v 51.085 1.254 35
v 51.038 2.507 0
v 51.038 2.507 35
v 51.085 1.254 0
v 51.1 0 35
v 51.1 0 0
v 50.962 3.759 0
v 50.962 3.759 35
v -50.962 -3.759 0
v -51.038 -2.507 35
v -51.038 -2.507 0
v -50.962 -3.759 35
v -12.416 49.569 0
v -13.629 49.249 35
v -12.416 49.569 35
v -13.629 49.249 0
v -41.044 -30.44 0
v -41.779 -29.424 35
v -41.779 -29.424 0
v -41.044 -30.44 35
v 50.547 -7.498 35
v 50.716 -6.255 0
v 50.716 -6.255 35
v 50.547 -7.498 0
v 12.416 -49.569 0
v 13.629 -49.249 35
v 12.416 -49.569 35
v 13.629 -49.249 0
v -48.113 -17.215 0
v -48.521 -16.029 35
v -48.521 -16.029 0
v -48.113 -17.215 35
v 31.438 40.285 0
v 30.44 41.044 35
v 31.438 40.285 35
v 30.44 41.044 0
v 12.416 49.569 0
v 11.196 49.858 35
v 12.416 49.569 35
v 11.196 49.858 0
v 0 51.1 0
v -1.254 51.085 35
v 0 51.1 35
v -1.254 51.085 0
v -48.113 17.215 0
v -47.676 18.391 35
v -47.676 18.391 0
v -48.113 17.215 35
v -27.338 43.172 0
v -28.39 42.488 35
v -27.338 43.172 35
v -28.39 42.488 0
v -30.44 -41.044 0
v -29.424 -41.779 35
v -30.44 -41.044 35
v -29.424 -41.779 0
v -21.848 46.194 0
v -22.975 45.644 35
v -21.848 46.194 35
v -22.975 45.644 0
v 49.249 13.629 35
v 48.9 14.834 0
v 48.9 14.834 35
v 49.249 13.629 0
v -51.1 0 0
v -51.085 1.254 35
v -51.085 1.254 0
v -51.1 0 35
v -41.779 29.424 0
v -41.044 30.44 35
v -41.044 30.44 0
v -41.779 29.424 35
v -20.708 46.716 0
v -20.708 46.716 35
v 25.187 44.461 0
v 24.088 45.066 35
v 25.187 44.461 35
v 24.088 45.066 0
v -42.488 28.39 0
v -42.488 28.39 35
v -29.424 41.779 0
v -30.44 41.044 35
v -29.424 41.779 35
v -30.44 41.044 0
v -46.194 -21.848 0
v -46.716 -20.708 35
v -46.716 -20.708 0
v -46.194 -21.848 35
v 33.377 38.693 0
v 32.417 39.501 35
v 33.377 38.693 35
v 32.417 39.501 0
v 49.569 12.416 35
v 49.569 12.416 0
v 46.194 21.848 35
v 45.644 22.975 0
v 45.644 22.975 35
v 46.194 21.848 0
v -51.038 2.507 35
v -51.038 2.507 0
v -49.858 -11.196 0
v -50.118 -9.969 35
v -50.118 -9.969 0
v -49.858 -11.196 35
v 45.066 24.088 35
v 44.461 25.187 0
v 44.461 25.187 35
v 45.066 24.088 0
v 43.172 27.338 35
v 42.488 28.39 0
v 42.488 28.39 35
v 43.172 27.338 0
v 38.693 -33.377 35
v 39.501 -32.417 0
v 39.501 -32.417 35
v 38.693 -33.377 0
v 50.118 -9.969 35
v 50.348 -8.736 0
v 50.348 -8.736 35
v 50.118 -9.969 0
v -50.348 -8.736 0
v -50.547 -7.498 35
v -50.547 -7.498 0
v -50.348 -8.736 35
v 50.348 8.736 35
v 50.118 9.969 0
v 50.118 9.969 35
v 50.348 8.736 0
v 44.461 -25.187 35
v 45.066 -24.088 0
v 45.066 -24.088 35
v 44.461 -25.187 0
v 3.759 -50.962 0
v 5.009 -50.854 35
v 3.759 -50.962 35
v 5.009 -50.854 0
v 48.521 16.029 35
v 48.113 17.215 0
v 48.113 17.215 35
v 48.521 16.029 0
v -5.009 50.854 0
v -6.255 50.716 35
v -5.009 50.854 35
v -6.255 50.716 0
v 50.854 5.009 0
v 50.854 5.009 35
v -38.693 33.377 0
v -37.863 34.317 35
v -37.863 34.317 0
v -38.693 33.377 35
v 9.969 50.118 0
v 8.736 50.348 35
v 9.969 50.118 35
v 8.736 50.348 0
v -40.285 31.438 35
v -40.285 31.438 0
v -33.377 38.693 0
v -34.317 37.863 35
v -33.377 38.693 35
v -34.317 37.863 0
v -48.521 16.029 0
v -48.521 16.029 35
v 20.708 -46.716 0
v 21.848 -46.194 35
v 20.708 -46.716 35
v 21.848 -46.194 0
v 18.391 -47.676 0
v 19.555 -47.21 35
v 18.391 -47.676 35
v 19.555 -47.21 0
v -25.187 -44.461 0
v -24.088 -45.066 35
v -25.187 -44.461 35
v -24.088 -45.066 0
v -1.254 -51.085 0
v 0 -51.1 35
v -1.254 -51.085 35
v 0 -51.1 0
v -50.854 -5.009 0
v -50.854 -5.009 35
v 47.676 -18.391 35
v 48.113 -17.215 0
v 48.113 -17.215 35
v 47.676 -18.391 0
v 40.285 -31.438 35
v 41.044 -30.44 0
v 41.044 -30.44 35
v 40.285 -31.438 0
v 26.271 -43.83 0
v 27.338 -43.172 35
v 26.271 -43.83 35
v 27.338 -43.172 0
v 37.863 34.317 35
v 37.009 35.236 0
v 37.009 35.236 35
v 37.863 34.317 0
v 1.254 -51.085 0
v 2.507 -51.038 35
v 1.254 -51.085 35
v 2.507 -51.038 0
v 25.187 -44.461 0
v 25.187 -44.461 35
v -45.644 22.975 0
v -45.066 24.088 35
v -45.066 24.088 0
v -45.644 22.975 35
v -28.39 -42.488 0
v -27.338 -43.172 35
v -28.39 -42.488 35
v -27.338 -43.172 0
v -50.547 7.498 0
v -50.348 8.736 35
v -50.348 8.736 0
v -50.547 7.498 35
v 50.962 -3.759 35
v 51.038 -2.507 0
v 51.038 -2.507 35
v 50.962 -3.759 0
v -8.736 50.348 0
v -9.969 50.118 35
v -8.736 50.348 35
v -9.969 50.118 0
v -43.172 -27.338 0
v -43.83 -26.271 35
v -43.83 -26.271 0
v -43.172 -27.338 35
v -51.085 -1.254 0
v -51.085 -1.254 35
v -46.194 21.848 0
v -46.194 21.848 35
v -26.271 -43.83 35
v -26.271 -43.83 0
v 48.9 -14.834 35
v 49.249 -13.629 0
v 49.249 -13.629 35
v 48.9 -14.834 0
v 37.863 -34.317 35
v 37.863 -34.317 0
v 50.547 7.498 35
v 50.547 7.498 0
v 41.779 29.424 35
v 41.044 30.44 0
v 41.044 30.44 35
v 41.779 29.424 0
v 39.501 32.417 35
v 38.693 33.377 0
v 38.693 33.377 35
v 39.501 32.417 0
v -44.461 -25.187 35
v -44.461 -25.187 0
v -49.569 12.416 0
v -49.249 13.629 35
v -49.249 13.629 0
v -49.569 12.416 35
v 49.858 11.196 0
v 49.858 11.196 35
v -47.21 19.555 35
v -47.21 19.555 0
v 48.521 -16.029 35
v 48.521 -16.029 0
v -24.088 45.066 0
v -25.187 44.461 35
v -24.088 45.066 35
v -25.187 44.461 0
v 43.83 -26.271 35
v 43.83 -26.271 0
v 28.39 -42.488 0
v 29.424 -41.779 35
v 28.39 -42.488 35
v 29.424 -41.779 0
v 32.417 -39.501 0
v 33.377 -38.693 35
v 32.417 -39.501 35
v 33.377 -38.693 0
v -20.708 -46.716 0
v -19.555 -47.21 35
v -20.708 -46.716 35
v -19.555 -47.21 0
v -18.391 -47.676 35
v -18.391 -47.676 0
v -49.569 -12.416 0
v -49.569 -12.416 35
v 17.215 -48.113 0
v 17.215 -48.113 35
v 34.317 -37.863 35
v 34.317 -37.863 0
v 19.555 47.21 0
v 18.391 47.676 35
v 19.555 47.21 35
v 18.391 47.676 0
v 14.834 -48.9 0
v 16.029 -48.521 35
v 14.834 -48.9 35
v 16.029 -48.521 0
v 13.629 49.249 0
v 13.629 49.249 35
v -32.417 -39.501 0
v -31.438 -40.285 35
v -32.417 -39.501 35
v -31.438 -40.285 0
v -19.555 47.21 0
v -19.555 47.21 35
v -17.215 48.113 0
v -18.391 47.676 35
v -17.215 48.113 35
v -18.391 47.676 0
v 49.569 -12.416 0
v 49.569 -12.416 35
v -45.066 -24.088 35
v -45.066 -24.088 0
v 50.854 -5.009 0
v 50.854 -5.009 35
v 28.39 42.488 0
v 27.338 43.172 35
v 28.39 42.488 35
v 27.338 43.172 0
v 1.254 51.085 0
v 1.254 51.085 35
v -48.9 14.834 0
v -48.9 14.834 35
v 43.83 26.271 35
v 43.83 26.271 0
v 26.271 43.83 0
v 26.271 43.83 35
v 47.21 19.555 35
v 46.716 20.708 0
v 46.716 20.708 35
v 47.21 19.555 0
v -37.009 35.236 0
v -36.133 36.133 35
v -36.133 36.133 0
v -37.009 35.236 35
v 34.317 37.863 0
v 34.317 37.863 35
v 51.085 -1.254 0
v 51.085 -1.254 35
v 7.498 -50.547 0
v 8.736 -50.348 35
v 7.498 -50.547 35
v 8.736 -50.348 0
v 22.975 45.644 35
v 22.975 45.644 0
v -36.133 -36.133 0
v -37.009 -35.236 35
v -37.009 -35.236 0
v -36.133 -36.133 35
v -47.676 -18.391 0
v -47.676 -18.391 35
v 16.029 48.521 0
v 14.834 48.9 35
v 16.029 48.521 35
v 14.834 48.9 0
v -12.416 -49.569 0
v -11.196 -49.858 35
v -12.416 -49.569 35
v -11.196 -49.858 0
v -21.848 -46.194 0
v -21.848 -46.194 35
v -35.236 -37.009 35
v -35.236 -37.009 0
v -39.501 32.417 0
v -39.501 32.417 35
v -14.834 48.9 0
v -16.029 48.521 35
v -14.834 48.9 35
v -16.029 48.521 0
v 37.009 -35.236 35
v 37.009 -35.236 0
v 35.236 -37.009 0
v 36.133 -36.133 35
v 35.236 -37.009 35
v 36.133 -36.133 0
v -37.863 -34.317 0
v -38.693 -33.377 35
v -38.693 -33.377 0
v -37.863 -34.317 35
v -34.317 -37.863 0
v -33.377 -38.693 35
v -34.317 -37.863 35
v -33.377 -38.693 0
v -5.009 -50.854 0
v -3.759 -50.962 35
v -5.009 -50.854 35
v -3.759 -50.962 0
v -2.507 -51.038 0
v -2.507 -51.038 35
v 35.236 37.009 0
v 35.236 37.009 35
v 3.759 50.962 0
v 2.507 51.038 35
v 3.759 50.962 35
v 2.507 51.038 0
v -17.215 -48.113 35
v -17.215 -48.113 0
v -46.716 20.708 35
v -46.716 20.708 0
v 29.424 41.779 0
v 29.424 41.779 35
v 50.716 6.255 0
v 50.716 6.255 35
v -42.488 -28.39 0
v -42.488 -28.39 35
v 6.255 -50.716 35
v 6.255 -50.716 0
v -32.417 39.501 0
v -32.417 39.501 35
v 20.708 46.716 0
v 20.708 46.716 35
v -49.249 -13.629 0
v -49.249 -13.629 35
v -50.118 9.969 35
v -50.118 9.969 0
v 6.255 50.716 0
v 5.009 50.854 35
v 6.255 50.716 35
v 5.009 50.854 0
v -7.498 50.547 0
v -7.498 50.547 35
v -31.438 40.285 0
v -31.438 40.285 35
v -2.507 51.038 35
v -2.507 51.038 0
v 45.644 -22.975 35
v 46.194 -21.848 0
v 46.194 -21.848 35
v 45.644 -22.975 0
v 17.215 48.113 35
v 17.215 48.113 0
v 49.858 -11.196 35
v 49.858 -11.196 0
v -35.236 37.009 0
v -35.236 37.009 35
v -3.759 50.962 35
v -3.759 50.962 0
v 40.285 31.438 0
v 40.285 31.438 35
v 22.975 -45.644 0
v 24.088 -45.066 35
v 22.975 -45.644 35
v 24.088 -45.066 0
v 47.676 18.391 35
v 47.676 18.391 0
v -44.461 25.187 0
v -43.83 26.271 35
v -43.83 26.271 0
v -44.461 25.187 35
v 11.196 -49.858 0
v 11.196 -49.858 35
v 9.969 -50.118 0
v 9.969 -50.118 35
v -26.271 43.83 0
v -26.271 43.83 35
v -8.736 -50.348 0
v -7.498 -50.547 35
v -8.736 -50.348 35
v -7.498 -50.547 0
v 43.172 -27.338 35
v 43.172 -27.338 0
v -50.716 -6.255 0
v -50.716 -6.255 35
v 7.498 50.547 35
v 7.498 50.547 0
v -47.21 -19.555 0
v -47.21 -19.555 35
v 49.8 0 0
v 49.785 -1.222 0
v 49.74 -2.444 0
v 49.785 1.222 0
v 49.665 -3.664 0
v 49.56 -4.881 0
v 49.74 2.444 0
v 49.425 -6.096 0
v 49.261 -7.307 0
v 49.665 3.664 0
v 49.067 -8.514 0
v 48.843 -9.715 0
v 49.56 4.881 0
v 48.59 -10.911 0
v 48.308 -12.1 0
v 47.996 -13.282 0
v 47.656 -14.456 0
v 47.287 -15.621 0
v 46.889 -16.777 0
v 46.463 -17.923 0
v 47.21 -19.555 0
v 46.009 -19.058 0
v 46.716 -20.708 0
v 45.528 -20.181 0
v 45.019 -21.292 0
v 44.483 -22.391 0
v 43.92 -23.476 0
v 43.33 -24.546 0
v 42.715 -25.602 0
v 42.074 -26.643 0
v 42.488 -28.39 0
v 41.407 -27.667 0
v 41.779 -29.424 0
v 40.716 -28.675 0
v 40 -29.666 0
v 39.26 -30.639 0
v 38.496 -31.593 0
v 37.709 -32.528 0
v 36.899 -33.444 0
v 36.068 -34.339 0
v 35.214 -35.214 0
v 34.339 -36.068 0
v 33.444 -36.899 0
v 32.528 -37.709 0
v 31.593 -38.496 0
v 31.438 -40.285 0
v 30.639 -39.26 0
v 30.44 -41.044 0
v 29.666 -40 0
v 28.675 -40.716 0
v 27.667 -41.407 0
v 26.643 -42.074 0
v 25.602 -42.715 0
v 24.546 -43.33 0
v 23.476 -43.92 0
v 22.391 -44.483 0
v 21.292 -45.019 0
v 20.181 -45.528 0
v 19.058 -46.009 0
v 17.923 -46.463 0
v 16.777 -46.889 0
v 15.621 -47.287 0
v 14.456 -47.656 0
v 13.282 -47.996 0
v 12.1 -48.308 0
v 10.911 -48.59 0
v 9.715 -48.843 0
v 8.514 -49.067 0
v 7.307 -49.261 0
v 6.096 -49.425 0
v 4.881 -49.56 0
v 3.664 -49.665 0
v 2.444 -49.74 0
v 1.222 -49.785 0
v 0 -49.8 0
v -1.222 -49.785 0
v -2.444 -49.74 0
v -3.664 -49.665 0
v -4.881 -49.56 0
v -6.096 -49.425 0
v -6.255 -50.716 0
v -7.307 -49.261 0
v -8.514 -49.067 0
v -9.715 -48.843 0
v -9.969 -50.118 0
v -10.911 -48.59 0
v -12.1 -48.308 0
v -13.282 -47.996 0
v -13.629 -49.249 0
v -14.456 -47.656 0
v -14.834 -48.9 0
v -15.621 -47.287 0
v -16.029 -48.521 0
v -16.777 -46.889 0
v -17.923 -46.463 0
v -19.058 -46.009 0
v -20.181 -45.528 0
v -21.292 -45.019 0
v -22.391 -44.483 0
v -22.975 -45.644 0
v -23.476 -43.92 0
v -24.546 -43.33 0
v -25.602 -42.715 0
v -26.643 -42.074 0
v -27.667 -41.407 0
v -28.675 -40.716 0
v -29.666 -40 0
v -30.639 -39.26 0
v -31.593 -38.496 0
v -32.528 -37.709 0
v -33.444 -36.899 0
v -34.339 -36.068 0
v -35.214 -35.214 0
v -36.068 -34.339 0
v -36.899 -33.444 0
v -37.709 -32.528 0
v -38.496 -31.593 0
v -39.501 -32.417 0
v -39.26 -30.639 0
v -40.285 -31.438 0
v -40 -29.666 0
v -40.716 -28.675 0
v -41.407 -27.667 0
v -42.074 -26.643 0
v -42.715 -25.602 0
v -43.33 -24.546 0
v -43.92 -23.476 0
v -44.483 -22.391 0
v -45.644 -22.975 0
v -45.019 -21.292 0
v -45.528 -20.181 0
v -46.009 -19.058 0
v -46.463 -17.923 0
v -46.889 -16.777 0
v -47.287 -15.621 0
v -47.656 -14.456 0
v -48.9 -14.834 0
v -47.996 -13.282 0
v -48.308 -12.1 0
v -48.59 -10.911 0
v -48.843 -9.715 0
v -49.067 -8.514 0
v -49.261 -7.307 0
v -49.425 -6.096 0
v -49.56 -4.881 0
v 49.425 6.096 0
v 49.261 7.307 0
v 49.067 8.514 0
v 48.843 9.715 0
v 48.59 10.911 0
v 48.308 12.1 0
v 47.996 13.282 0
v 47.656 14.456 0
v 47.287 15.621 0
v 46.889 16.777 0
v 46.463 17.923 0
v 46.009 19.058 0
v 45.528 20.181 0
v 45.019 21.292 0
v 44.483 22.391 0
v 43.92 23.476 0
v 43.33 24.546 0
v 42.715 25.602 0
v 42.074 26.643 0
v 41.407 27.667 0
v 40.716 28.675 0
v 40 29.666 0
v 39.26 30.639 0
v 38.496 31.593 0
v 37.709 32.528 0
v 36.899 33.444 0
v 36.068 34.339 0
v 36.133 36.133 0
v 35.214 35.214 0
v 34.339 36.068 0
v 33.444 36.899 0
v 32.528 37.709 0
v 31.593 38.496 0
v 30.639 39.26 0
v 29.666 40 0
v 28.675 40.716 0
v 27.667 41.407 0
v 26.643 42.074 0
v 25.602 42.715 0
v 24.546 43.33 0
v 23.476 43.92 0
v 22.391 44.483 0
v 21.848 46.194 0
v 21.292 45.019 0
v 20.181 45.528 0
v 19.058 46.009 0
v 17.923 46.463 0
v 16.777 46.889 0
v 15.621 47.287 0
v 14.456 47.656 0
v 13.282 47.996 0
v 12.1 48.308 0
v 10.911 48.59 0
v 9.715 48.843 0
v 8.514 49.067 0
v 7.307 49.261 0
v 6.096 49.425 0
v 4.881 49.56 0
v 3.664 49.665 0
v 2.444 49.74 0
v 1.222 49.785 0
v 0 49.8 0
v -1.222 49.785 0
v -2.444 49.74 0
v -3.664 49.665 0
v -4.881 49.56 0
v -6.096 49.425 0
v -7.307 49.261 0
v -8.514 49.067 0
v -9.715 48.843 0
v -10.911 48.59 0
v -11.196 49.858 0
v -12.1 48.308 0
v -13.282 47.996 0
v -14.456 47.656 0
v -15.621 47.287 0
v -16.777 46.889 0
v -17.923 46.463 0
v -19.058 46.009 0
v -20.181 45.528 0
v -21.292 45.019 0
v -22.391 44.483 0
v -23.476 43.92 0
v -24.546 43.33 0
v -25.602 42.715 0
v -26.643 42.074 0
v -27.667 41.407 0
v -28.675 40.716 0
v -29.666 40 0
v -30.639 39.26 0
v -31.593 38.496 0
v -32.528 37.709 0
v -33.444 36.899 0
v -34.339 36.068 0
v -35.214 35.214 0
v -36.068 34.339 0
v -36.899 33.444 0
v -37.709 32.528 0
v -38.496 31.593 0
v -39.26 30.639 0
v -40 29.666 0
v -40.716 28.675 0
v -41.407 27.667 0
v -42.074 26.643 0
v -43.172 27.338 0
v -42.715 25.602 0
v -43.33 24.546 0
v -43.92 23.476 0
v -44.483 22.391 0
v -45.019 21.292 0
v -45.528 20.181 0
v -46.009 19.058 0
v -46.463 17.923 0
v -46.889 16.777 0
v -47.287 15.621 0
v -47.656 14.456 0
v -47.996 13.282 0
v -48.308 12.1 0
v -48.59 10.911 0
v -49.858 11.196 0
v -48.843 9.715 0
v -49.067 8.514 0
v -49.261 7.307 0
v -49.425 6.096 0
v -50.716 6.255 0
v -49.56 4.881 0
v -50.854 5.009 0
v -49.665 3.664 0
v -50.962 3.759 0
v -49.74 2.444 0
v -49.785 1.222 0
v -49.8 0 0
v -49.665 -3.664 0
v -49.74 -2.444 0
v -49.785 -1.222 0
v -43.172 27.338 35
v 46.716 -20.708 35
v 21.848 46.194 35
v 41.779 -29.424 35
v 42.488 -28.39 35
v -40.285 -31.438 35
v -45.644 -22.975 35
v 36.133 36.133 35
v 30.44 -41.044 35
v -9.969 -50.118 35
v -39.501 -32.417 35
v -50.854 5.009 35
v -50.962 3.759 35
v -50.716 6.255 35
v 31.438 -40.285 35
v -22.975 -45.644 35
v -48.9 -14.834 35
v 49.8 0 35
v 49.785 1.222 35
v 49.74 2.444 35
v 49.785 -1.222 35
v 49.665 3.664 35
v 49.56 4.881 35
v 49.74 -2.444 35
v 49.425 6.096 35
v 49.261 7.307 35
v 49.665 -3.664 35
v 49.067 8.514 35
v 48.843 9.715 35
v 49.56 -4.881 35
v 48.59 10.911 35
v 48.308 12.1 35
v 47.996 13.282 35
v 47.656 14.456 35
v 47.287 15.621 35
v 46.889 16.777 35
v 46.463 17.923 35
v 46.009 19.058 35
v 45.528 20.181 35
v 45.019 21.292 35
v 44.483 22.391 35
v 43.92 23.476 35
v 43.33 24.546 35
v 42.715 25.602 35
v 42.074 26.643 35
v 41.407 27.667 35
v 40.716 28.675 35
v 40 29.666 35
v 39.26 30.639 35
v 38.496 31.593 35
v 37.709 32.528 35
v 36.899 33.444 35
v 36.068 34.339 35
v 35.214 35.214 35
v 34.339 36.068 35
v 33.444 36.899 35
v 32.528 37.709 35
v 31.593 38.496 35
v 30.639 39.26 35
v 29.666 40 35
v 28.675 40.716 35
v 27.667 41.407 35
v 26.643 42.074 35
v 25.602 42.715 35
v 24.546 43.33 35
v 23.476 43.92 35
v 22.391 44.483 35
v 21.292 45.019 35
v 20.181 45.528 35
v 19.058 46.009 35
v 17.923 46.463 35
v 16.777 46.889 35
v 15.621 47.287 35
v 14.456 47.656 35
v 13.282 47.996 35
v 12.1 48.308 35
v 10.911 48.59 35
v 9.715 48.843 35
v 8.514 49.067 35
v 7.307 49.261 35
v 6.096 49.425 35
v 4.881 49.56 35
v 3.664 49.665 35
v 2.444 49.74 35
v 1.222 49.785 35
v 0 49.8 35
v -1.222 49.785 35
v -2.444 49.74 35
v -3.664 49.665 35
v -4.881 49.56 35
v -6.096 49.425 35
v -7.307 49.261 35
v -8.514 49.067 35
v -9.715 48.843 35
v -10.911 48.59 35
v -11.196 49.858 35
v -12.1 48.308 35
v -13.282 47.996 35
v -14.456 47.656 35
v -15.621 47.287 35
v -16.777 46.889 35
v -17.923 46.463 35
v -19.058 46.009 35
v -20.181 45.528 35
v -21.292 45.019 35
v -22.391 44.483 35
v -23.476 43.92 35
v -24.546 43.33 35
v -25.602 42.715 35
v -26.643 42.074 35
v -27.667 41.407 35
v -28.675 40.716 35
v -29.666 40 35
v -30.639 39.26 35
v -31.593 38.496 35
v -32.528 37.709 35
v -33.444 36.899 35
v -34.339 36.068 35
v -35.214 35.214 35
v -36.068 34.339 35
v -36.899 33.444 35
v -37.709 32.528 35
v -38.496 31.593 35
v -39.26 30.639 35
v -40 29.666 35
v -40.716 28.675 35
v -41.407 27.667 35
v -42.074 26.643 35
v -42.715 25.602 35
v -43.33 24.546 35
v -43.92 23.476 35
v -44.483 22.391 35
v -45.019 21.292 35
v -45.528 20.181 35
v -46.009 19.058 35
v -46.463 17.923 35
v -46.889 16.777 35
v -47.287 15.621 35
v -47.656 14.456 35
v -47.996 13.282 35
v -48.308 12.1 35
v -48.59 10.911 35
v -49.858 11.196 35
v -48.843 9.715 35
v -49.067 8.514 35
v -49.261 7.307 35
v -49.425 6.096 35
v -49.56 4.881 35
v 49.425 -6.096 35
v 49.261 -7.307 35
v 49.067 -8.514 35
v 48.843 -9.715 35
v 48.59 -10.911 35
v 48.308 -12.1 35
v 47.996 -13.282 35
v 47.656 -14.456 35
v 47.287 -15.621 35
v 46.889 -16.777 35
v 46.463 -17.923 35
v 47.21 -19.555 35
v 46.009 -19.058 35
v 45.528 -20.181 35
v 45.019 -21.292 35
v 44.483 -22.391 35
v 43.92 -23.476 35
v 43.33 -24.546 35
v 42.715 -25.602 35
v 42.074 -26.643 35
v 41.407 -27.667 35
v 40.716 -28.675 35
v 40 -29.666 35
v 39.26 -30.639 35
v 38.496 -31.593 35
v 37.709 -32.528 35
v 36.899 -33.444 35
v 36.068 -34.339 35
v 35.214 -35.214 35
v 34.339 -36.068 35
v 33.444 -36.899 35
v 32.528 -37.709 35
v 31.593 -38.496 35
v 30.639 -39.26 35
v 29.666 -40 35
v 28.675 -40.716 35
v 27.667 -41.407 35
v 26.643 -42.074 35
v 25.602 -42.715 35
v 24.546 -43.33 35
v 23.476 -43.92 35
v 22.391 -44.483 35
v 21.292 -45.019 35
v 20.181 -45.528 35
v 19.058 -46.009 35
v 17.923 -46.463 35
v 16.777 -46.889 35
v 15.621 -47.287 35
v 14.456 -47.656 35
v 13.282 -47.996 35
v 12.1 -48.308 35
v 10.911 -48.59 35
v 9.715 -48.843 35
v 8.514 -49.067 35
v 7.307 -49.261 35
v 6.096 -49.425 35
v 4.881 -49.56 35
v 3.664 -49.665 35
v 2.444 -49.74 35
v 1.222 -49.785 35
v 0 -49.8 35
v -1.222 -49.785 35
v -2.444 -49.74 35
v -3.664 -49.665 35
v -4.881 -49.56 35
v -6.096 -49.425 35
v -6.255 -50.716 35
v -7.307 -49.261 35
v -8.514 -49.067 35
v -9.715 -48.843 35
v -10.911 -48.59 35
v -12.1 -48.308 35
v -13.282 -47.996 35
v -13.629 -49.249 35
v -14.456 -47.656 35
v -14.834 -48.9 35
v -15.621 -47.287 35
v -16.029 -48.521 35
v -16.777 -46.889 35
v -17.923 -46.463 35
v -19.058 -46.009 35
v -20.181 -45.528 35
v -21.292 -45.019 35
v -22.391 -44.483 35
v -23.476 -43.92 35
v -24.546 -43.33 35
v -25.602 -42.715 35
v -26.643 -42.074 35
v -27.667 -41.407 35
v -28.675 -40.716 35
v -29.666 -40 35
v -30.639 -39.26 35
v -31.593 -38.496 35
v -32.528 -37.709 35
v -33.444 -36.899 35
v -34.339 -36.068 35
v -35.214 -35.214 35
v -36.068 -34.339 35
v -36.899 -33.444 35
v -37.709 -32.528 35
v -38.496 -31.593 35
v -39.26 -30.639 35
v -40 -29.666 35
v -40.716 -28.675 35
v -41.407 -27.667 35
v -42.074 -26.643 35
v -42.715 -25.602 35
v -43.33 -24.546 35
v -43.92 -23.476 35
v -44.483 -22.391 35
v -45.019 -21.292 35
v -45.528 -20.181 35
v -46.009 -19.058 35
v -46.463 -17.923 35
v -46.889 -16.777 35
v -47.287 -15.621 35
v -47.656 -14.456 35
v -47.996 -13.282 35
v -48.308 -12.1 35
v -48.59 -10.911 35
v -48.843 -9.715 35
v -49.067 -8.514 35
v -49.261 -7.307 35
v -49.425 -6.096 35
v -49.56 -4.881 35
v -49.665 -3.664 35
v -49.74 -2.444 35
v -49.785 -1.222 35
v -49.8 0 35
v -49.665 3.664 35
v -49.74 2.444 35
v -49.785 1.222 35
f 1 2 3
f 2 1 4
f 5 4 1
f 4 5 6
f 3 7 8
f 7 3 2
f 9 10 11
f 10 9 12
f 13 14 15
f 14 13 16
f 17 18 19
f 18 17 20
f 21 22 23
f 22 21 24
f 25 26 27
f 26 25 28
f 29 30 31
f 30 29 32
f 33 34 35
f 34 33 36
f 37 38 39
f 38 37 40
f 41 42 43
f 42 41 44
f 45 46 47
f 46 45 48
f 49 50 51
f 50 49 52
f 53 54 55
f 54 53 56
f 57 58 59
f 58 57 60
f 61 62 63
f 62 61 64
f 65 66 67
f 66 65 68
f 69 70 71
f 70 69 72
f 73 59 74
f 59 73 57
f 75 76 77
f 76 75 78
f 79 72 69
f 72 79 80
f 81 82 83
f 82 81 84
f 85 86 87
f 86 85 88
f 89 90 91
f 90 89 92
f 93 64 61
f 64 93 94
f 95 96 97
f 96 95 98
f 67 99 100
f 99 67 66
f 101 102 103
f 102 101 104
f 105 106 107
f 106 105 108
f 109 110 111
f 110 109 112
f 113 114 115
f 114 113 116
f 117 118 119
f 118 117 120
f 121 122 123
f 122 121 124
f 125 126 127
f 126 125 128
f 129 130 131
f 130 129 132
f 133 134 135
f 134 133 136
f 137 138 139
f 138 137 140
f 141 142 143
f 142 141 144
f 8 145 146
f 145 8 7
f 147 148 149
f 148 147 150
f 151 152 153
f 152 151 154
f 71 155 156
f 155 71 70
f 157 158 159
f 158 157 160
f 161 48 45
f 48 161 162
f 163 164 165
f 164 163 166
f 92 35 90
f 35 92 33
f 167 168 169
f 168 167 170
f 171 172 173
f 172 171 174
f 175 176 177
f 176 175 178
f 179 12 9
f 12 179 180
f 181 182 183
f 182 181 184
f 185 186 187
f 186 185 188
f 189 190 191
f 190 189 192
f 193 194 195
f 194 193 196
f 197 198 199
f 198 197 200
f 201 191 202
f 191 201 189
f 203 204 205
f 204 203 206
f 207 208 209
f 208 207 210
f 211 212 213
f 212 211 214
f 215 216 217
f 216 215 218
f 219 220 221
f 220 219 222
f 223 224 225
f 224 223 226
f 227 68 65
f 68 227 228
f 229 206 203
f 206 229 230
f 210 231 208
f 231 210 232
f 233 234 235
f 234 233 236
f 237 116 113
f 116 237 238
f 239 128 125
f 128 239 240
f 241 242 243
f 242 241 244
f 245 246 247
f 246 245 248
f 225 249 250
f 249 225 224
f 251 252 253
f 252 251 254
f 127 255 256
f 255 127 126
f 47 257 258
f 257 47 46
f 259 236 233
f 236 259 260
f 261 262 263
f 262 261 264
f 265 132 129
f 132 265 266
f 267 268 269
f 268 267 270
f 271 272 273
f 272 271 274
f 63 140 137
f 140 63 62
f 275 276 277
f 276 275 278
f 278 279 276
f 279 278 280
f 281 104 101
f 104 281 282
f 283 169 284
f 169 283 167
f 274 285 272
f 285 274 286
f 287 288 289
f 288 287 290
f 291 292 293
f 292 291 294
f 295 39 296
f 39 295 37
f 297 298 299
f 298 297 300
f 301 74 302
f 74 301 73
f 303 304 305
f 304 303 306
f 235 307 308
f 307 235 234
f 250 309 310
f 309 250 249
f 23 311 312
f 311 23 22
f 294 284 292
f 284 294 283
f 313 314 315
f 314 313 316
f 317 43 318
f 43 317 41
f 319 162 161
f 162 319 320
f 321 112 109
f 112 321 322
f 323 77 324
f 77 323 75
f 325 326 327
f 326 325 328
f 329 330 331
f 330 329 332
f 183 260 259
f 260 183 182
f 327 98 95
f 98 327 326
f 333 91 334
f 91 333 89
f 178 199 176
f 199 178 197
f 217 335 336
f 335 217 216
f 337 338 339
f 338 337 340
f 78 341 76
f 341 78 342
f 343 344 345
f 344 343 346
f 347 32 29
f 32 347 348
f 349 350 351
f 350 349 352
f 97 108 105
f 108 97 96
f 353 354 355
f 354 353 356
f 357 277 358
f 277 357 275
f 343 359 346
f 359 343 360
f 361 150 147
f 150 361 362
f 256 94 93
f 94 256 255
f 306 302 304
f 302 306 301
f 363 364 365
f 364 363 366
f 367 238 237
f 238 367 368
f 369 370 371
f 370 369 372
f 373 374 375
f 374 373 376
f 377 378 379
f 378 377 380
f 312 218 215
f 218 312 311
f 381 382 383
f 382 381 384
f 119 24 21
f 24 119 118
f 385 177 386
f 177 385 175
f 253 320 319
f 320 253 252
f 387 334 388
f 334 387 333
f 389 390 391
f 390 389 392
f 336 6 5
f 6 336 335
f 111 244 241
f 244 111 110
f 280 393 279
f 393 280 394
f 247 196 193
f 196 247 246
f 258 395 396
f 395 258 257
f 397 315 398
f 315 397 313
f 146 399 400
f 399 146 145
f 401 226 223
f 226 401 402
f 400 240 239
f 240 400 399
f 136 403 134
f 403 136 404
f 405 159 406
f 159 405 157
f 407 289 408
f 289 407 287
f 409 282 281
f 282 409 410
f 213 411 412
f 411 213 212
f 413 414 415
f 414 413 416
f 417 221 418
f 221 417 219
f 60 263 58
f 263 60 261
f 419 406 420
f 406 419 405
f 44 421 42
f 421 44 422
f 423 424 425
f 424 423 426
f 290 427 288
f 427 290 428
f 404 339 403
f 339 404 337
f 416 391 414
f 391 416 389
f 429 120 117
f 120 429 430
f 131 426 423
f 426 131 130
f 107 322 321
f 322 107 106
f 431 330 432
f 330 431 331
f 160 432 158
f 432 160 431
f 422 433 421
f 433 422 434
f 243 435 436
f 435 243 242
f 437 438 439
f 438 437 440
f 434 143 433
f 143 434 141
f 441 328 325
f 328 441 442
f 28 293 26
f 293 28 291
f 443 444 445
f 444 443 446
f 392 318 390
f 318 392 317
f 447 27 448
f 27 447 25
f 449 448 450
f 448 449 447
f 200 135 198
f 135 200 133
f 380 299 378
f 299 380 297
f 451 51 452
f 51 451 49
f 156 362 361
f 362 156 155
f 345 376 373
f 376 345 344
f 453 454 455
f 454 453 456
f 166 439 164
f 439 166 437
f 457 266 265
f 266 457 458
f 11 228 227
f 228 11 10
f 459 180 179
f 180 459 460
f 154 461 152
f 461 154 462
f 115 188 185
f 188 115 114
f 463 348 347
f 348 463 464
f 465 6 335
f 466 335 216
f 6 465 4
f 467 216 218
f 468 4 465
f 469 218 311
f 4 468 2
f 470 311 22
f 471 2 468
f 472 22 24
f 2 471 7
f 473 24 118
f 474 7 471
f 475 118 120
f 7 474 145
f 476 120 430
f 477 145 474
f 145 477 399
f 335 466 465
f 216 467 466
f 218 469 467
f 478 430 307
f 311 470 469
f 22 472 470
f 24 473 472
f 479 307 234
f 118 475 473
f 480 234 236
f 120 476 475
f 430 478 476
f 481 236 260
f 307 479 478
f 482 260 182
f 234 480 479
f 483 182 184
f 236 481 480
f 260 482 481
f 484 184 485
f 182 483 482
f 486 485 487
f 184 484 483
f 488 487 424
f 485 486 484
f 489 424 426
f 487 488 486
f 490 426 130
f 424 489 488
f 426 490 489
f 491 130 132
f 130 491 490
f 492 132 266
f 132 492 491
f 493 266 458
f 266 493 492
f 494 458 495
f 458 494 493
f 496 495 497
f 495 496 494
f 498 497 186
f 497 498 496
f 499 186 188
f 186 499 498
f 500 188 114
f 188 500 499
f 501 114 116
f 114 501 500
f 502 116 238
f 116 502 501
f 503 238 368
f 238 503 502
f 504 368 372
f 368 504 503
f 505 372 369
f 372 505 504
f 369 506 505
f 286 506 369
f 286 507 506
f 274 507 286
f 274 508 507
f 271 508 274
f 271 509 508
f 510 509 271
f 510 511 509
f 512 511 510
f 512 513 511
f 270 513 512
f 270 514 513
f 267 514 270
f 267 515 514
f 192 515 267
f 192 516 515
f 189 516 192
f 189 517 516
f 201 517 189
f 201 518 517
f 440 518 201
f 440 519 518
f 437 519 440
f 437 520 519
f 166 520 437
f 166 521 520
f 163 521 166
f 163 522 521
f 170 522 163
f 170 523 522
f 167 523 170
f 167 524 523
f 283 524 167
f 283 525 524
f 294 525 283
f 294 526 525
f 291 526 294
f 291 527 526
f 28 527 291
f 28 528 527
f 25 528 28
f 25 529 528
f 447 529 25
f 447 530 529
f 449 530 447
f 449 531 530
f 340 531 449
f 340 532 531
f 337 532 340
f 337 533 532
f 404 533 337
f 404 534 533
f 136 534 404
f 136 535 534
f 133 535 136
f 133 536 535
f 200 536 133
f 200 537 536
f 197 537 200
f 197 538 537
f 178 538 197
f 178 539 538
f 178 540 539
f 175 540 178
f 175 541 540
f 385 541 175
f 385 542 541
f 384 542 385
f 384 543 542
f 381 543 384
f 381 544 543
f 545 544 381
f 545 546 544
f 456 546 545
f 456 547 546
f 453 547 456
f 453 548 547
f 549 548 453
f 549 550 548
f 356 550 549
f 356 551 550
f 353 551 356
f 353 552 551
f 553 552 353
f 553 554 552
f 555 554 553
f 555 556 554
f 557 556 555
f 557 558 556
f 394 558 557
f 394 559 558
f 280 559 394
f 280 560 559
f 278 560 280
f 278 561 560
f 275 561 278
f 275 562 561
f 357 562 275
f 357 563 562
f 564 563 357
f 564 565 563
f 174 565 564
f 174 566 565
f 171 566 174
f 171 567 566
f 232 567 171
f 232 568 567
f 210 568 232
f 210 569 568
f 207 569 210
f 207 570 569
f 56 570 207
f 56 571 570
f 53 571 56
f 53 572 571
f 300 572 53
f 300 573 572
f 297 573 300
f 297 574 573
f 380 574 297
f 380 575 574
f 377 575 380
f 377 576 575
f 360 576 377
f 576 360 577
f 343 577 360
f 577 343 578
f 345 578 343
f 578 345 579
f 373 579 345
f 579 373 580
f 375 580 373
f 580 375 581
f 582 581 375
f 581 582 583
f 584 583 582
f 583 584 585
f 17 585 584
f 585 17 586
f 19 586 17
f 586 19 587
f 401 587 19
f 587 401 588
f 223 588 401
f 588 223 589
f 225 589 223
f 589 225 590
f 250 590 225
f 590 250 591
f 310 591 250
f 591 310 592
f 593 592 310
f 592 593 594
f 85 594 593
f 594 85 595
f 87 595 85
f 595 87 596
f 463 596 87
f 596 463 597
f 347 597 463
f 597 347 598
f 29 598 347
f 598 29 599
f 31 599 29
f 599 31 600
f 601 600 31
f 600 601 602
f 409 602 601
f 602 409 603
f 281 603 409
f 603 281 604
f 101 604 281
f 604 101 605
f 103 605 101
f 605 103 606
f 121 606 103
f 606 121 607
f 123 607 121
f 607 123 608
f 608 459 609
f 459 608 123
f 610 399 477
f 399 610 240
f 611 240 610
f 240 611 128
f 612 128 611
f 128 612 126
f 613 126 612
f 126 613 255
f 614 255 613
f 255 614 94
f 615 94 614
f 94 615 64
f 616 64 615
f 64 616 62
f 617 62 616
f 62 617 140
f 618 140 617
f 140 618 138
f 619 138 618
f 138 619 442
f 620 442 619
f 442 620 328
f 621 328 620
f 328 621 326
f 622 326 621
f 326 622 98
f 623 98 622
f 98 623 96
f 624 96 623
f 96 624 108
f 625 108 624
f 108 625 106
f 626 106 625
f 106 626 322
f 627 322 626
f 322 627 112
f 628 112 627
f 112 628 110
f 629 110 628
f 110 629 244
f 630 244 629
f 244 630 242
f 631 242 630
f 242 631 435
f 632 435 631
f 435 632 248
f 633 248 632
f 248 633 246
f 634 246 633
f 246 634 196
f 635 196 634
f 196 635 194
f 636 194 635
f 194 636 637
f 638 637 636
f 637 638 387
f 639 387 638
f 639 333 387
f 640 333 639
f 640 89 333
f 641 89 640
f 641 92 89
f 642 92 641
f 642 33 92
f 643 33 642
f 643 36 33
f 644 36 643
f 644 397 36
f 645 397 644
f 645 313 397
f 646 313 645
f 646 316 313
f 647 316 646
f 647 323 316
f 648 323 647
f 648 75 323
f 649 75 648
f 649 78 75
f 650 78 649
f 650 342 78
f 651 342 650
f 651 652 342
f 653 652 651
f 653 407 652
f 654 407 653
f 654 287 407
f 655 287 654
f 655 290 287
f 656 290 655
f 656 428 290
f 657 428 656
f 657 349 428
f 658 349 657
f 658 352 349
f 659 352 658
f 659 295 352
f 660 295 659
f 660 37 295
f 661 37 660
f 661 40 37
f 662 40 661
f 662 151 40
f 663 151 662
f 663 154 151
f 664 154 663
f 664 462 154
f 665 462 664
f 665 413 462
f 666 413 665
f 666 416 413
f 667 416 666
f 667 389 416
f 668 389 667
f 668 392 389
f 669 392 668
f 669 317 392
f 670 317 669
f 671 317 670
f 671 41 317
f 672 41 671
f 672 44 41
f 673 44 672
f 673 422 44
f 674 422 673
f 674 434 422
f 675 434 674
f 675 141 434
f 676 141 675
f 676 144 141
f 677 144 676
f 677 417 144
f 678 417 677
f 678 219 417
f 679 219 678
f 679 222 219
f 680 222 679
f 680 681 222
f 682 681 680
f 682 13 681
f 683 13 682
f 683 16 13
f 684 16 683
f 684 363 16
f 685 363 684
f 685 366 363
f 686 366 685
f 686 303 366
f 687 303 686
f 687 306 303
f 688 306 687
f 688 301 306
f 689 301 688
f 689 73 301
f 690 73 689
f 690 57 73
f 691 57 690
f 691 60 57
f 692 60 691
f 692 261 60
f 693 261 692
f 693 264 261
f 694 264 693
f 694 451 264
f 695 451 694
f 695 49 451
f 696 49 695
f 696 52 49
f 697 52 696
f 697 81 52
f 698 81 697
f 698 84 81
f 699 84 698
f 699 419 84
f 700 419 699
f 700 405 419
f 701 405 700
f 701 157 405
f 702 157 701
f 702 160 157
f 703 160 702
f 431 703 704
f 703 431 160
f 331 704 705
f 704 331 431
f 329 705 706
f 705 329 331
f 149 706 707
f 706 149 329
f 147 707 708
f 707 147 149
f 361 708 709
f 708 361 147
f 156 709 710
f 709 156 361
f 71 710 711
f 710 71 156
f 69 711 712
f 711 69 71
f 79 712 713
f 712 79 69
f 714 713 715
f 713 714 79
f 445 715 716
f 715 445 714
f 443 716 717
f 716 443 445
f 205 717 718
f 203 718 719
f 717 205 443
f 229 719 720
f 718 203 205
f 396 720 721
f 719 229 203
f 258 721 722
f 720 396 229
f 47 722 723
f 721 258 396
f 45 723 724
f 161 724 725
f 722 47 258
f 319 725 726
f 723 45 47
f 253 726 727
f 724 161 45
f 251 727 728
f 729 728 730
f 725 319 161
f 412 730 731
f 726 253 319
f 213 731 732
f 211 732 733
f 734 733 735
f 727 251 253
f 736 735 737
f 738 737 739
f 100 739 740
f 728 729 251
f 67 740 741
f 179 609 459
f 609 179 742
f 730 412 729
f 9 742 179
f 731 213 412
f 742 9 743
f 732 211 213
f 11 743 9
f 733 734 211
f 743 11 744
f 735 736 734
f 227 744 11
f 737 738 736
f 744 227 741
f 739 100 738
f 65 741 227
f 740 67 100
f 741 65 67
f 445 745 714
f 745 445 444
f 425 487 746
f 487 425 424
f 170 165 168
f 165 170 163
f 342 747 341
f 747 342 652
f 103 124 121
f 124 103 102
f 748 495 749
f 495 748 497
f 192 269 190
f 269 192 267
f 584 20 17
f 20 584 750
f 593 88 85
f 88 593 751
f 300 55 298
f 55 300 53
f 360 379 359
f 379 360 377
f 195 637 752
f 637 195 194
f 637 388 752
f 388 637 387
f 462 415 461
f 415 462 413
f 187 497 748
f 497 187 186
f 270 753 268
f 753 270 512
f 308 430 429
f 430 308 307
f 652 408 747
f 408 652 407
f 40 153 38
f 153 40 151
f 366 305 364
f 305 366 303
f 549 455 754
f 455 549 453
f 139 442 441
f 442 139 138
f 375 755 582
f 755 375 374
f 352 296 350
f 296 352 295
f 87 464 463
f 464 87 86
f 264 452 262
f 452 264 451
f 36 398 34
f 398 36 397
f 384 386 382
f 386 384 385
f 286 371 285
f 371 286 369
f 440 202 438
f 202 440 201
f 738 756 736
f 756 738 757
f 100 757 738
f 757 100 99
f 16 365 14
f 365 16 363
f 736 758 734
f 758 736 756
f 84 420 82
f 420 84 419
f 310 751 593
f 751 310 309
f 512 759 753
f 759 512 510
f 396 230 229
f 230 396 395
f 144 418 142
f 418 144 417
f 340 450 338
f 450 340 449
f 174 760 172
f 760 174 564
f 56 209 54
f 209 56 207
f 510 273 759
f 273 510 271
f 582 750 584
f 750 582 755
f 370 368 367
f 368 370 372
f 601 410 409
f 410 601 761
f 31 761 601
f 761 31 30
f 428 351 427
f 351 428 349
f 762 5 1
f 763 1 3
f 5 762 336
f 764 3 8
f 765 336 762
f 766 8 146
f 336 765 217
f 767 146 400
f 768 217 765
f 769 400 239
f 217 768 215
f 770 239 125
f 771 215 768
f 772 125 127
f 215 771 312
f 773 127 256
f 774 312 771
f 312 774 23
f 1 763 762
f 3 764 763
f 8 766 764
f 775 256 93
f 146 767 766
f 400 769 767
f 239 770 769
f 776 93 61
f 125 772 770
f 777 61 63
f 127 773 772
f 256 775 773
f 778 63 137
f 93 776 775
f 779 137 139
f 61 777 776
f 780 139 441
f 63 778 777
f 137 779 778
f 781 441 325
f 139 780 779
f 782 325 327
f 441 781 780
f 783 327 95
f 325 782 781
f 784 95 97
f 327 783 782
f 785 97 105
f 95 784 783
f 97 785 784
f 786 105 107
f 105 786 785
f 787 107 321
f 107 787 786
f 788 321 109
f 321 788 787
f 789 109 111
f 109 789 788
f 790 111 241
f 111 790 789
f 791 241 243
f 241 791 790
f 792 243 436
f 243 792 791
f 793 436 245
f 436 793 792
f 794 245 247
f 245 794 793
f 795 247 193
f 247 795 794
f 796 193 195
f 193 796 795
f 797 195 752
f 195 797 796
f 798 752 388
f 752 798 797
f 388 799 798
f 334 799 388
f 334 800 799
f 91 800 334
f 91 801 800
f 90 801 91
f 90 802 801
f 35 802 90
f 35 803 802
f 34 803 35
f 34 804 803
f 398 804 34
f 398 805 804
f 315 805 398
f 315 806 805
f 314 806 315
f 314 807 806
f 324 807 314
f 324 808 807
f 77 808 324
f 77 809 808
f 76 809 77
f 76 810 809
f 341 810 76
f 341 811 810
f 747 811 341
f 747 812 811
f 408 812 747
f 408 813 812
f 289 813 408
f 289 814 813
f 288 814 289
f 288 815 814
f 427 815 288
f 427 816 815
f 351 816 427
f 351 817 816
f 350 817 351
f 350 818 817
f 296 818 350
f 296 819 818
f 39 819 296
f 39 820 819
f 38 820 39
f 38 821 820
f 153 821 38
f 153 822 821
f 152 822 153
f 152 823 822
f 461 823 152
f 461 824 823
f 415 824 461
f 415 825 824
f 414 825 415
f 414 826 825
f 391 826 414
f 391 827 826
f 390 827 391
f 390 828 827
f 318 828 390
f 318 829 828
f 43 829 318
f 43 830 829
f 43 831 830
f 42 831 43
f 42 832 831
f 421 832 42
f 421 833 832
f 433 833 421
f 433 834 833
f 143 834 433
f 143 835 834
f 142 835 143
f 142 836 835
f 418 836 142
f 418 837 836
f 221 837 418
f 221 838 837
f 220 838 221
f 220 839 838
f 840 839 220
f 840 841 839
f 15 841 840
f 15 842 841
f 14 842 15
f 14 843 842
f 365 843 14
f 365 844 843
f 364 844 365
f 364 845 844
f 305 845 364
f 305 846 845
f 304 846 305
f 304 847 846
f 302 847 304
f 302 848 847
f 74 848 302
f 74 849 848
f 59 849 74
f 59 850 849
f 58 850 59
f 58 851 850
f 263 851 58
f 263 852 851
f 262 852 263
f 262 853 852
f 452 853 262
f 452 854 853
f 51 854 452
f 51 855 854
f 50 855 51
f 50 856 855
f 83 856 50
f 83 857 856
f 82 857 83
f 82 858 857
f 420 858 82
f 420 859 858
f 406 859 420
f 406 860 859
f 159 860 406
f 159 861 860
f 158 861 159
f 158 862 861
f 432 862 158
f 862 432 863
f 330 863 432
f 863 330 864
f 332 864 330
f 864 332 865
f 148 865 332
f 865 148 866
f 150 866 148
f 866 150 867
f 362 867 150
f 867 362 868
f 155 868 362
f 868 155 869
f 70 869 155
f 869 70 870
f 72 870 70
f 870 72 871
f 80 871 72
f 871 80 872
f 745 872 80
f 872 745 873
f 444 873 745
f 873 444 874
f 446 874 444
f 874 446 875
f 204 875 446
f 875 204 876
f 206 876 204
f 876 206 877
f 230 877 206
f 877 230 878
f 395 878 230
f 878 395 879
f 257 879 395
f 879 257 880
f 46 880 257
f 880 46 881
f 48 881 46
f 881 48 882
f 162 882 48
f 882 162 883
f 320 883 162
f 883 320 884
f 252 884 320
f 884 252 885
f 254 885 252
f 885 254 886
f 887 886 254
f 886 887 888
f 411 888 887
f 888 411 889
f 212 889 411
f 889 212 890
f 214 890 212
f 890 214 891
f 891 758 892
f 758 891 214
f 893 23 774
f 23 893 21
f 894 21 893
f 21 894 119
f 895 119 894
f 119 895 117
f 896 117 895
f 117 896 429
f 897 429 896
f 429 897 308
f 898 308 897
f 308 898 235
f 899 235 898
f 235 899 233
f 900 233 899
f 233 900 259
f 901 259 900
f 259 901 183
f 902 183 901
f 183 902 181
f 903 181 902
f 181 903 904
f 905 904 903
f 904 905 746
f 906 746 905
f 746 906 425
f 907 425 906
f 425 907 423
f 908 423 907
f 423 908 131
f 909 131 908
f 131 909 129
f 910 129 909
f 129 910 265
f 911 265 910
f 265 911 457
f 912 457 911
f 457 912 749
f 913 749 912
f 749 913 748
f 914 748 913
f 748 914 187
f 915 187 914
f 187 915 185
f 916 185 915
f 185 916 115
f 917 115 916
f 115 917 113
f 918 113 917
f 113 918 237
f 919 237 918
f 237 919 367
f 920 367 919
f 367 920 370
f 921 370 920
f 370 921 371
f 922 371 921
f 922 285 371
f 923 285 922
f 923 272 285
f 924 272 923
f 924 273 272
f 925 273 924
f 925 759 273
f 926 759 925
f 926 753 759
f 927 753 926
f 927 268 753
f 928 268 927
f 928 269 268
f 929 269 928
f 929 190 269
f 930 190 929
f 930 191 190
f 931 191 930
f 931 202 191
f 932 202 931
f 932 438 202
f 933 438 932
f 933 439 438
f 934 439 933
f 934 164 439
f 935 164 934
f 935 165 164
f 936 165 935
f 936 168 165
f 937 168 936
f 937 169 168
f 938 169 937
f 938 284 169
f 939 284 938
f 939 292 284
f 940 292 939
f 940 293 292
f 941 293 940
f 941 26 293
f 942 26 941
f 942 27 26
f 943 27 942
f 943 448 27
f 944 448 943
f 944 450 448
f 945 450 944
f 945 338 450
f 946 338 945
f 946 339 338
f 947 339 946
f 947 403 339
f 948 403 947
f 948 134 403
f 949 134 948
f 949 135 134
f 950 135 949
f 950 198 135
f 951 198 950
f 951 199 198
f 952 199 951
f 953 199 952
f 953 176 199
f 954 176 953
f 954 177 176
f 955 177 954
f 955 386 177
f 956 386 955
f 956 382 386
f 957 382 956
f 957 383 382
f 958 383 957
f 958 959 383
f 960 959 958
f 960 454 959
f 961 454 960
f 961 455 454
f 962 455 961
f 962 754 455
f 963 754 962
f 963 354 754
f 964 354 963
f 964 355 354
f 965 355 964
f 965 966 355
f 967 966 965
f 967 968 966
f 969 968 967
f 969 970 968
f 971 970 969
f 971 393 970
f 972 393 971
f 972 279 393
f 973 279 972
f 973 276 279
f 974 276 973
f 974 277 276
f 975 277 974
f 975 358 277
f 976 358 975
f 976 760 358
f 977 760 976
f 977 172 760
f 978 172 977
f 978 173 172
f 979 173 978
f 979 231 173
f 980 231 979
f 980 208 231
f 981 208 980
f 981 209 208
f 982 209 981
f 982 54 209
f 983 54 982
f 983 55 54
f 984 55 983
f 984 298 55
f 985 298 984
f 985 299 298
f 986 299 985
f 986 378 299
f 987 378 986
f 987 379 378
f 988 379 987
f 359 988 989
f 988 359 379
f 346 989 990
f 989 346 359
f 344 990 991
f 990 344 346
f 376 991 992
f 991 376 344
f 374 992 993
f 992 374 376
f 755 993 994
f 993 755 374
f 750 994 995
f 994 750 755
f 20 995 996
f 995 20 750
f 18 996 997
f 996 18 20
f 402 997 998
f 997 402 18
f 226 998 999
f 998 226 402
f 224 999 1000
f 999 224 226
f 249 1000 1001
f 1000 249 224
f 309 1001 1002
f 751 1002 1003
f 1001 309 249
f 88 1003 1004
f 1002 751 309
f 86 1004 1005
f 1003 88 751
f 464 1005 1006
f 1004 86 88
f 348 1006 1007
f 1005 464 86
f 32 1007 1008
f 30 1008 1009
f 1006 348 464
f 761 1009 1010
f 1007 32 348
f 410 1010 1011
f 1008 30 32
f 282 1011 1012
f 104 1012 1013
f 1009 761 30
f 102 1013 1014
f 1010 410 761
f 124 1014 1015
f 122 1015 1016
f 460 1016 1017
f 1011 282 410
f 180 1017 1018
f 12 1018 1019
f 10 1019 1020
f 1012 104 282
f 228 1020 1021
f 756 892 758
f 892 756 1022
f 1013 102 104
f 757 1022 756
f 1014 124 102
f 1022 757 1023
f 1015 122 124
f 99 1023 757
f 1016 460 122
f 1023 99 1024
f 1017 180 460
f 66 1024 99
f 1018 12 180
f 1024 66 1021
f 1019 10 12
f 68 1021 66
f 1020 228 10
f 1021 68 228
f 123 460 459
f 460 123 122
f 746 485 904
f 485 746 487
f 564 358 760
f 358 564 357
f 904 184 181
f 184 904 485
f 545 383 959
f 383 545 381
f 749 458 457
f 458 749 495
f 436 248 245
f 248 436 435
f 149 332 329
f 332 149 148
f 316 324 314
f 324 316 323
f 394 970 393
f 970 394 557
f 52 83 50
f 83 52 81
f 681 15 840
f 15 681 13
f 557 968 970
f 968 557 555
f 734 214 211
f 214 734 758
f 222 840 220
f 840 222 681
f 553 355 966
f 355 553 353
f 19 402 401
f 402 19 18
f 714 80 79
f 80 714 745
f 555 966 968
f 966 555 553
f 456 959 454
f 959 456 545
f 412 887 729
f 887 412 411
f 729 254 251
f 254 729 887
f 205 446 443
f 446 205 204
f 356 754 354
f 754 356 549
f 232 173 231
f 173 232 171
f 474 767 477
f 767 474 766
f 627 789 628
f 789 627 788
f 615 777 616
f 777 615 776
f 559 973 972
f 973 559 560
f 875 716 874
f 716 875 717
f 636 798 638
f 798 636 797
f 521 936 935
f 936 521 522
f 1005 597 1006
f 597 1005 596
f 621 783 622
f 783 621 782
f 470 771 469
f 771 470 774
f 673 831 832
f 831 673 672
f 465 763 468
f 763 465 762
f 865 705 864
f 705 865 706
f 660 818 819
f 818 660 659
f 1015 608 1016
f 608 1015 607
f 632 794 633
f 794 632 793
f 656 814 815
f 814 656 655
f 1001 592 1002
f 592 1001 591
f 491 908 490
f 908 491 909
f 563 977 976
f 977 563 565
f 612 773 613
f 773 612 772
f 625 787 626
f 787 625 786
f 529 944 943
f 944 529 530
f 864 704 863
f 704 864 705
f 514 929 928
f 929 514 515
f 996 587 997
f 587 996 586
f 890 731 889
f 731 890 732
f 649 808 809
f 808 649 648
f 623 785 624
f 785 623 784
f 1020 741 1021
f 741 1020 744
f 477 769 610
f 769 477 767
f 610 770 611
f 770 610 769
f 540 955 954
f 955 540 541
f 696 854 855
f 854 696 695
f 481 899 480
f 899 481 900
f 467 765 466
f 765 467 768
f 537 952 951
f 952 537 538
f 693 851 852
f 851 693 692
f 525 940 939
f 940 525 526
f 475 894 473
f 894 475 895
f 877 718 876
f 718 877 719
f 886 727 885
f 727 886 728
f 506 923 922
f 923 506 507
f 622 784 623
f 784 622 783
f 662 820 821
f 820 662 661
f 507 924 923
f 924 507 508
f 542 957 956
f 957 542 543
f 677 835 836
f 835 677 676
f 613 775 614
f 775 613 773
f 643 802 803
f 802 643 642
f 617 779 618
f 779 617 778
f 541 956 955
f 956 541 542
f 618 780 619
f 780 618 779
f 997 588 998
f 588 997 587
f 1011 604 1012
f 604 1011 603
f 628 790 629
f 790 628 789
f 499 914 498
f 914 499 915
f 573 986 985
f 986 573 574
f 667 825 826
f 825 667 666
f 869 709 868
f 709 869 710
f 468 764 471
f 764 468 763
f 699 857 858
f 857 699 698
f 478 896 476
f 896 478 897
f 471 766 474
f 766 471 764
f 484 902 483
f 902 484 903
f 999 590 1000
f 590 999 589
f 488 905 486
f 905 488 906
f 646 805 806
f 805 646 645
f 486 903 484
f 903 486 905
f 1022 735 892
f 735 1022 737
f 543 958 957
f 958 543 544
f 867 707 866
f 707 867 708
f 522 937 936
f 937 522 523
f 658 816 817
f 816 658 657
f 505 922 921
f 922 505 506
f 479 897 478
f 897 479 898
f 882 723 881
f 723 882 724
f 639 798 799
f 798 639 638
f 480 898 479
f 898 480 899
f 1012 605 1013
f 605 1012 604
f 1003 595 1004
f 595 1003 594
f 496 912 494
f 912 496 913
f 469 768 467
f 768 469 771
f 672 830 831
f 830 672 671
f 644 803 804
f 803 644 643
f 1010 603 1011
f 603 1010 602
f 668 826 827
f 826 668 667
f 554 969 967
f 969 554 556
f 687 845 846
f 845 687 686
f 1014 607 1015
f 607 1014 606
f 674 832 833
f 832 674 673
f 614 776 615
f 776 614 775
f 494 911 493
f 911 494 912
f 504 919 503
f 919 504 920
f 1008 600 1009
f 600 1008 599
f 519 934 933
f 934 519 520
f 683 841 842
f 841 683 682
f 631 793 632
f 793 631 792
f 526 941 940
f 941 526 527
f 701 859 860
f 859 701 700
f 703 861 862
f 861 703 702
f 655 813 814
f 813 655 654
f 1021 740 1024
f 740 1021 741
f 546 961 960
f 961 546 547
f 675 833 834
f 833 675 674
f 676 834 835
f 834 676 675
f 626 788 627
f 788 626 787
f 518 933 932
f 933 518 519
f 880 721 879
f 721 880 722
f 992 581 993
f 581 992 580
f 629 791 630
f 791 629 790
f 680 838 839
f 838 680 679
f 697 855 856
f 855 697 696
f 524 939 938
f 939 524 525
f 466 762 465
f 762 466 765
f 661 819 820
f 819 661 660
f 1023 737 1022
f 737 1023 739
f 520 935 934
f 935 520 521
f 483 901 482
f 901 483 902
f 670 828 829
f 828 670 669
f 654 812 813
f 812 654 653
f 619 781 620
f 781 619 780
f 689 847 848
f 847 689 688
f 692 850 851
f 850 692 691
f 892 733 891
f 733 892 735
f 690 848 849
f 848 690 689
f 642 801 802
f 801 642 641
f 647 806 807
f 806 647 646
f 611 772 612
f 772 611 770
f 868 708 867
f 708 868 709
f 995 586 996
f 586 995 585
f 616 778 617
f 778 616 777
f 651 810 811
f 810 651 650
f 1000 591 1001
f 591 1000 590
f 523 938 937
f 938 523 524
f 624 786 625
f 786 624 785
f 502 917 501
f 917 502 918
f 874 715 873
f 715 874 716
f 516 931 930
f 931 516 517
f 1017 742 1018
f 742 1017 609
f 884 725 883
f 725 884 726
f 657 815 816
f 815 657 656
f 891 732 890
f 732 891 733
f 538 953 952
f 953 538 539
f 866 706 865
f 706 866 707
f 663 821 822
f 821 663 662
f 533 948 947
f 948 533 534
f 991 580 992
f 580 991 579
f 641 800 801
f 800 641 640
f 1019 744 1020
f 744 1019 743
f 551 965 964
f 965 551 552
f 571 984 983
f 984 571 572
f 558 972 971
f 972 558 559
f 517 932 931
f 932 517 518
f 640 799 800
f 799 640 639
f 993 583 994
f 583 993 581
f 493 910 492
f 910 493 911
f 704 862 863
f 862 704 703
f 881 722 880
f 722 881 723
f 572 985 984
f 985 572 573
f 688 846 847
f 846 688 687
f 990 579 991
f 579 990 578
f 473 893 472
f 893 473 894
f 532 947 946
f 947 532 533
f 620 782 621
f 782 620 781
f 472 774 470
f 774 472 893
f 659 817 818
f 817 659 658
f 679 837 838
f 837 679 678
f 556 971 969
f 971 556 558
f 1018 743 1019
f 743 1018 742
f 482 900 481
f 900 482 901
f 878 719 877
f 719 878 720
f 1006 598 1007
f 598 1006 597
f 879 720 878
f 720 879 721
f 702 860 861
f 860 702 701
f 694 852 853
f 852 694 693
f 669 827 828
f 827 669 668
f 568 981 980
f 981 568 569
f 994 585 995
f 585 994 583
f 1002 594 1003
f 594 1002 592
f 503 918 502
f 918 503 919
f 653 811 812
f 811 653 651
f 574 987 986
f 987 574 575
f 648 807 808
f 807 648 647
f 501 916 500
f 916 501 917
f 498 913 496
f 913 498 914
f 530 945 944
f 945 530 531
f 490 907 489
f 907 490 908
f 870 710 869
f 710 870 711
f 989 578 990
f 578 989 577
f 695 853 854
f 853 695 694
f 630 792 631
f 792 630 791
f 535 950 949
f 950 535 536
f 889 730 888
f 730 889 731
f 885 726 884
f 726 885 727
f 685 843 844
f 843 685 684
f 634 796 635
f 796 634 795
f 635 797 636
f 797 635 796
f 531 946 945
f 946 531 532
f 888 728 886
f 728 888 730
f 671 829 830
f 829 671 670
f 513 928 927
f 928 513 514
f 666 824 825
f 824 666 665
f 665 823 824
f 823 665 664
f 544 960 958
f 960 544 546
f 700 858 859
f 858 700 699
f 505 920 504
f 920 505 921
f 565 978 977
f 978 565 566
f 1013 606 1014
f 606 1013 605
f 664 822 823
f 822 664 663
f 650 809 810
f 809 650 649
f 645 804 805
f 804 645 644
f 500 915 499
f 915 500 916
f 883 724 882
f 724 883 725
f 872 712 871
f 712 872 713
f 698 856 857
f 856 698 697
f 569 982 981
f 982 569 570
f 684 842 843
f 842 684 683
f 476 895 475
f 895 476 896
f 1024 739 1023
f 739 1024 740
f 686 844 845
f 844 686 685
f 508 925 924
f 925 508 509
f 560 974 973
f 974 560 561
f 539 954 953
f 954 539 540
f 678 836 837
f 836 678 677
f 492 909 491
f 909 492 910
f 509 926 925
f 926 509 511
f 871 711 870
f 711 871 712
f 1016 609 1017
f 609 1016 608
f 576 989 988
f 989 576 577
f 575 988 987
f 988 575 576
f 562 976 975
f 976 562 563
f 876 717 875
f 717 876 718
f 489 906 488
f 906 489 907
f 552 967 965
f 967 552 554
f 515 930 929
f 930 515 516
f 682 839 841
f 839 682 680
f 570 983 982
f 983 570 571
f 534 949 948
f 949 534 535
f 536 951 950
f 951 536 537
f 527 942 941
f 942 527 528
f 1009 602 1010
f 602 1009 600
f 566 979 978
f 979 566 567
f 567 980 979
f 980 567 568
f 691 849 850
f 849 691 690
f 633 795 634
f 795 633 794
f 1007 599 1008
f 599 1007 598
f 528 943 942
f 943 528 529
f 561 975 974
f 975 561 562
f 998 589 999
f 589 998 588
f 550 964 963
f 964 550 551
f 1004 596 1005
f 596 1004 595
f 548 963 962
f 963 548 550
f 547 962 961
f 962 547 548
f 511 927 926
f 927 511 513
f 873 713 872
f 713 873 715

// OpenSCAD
$fn=256;

difference() {
  cylinder(d =102.2, h = 35); 
  translate([0,0,-1]) cylinder(d =99.6, h = 46);  
}
